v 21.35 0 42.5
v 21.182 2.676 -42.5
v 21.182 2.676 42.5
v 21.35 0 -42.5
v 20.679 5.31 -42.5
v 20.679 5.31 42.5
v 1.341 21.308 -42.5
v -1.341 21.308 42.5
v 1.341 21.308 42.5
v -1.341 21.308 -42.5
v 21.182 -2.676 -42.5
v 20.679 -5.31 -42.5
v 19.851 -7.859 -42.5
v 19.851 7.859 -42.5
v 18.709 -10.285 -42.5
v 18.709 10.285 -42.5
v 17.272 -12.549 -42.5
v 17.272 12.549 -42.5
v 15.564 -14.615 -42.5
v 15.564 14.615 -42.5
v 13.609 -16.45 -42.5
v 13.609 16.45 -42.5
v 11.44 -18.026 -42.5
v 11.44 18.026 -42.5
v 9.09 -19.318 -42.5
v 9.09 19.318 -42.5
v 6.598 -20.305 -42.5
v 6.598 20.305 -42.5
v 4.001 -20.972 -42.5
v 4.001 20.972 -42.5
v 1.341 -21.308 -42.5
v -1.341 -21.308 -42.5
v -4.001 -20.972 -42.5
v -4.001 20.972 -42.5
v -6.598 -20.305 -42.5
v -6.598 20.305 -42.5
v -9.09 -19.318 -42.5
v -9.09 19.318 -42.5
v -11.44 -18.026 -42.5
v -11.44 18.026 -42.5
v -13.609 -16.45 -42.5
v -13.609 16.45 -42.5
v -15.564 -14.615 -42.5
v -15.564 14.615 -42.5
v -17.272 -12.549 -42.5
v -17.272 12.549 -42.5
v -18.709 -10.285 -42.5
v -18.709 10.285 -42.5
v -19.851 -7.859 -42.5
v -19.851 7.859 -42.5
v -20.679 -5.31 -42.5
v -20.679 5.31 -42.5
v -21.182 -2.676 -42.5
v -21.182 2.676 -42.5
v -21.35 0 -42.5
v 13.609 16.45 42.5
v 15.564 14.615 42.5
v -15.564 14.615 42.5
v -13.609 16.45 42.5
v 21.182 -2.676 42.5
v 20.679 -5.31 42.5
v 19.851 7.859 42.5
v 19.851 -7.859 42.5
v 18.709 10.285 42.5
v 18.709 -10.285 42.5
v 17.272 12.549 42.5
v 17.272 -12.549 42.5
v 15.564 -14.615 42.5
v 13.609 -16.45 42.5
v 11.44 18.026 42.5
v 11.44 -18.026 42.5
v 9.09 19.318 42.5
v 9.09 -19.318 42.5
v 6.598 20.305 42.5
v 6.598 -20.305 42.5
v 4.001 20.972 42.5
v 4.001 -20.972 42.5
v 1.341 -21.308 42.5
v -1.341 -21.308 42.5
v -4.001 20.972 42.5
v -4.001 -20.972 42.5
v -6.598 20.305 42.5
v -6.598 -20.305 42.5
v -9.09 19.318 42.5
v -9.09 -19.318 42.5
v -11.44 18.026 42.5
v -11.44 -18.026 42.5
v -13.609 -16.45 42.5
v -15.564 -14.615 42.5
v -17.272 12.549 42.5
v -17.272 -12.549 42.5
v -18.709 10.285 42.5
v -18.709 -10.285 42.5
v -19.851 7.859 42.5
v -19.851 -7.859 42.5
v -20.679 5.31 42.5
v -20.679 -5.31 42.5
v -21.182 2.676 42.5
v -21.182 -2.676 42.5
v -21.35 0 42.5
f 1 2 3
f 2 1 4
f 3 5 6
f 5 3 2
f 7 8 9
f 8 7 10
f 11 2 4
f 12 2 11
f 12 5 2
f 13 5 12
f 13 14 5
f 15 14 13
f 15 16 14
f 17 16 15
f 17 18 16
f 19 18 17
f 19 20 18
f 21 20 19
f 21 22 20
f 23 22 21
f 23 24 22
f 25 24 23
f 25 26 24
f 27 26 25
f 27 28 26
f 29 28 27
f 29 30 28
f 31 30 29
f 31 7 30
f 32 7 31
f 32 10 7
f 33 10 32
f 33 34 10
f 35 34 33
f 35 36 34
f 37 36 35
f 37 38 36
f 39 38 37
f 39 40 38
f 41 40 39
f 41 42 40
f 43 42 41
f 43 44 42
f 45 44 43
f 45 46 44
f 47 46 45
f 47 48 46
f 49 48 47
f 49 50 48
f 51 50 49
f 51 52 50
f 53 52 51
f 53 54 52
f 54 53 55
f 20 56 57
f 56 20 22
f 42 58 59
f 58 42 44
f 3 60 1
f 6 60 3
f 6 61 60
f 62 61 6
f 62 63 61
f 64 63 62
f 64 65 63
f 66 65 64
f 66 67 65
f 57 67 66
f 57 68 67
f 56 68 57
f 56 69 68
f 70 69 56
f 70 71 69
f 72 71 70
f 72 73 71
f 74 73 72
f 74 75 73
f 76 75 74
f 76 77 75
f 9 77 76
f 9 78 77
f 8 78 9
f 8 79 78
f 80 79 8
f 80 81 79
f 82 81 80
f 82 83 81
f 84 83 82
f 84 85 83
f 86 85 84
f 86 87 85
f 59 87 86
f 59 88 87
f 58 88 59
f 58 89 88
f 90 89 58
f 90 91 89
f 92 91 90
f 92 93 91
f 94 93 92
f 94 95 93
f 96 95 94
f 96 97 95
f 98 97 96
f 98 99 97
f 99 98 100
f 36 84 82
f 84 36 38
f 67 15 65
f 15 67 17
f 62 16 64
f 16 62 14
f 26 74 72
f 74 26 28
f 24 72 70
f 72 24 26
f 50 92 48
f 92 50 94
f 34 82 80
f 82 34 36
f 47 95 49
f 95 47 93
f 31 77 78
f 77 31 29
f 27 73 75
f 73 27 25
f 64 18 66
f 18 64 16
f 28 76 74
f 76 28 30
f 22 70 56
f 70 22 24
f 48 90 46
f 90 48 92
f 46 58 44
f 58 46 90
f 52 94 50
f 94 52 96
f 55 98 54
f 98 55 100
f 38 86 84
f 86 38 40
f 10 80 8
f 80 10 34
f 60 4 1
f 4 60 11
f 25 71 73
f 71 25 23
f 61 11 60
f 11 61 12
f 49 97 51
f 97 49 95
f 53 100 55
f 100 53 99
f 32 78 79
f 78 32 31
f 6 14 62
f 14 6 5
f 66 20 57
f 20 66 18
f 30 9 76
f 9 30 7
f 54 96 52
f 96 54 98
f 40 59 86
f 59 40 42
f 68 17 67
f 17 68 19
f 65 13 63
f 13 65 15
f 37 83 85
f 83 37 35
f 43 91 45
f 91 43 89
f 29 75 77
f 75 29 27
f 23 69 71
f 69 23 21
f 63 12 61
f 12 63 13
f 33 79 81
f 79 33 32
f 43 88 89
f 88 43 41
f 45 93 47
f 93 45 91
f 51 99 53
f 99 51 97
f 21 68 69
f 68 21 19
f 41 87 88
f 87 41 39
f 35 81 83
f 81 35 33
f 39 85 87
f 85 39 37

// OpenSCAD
$fn = 50;


difference() {
	union() {
		translate(v = [0, 0, -42.5000000000]) {
			cylinder(h = 85, r = 21.3500000000);
		}
	}
	union() {
		translate(v = [0, 0, -100.0000000000]) {
			cylinder(h = 200, r = 0);
		}
	}
}
